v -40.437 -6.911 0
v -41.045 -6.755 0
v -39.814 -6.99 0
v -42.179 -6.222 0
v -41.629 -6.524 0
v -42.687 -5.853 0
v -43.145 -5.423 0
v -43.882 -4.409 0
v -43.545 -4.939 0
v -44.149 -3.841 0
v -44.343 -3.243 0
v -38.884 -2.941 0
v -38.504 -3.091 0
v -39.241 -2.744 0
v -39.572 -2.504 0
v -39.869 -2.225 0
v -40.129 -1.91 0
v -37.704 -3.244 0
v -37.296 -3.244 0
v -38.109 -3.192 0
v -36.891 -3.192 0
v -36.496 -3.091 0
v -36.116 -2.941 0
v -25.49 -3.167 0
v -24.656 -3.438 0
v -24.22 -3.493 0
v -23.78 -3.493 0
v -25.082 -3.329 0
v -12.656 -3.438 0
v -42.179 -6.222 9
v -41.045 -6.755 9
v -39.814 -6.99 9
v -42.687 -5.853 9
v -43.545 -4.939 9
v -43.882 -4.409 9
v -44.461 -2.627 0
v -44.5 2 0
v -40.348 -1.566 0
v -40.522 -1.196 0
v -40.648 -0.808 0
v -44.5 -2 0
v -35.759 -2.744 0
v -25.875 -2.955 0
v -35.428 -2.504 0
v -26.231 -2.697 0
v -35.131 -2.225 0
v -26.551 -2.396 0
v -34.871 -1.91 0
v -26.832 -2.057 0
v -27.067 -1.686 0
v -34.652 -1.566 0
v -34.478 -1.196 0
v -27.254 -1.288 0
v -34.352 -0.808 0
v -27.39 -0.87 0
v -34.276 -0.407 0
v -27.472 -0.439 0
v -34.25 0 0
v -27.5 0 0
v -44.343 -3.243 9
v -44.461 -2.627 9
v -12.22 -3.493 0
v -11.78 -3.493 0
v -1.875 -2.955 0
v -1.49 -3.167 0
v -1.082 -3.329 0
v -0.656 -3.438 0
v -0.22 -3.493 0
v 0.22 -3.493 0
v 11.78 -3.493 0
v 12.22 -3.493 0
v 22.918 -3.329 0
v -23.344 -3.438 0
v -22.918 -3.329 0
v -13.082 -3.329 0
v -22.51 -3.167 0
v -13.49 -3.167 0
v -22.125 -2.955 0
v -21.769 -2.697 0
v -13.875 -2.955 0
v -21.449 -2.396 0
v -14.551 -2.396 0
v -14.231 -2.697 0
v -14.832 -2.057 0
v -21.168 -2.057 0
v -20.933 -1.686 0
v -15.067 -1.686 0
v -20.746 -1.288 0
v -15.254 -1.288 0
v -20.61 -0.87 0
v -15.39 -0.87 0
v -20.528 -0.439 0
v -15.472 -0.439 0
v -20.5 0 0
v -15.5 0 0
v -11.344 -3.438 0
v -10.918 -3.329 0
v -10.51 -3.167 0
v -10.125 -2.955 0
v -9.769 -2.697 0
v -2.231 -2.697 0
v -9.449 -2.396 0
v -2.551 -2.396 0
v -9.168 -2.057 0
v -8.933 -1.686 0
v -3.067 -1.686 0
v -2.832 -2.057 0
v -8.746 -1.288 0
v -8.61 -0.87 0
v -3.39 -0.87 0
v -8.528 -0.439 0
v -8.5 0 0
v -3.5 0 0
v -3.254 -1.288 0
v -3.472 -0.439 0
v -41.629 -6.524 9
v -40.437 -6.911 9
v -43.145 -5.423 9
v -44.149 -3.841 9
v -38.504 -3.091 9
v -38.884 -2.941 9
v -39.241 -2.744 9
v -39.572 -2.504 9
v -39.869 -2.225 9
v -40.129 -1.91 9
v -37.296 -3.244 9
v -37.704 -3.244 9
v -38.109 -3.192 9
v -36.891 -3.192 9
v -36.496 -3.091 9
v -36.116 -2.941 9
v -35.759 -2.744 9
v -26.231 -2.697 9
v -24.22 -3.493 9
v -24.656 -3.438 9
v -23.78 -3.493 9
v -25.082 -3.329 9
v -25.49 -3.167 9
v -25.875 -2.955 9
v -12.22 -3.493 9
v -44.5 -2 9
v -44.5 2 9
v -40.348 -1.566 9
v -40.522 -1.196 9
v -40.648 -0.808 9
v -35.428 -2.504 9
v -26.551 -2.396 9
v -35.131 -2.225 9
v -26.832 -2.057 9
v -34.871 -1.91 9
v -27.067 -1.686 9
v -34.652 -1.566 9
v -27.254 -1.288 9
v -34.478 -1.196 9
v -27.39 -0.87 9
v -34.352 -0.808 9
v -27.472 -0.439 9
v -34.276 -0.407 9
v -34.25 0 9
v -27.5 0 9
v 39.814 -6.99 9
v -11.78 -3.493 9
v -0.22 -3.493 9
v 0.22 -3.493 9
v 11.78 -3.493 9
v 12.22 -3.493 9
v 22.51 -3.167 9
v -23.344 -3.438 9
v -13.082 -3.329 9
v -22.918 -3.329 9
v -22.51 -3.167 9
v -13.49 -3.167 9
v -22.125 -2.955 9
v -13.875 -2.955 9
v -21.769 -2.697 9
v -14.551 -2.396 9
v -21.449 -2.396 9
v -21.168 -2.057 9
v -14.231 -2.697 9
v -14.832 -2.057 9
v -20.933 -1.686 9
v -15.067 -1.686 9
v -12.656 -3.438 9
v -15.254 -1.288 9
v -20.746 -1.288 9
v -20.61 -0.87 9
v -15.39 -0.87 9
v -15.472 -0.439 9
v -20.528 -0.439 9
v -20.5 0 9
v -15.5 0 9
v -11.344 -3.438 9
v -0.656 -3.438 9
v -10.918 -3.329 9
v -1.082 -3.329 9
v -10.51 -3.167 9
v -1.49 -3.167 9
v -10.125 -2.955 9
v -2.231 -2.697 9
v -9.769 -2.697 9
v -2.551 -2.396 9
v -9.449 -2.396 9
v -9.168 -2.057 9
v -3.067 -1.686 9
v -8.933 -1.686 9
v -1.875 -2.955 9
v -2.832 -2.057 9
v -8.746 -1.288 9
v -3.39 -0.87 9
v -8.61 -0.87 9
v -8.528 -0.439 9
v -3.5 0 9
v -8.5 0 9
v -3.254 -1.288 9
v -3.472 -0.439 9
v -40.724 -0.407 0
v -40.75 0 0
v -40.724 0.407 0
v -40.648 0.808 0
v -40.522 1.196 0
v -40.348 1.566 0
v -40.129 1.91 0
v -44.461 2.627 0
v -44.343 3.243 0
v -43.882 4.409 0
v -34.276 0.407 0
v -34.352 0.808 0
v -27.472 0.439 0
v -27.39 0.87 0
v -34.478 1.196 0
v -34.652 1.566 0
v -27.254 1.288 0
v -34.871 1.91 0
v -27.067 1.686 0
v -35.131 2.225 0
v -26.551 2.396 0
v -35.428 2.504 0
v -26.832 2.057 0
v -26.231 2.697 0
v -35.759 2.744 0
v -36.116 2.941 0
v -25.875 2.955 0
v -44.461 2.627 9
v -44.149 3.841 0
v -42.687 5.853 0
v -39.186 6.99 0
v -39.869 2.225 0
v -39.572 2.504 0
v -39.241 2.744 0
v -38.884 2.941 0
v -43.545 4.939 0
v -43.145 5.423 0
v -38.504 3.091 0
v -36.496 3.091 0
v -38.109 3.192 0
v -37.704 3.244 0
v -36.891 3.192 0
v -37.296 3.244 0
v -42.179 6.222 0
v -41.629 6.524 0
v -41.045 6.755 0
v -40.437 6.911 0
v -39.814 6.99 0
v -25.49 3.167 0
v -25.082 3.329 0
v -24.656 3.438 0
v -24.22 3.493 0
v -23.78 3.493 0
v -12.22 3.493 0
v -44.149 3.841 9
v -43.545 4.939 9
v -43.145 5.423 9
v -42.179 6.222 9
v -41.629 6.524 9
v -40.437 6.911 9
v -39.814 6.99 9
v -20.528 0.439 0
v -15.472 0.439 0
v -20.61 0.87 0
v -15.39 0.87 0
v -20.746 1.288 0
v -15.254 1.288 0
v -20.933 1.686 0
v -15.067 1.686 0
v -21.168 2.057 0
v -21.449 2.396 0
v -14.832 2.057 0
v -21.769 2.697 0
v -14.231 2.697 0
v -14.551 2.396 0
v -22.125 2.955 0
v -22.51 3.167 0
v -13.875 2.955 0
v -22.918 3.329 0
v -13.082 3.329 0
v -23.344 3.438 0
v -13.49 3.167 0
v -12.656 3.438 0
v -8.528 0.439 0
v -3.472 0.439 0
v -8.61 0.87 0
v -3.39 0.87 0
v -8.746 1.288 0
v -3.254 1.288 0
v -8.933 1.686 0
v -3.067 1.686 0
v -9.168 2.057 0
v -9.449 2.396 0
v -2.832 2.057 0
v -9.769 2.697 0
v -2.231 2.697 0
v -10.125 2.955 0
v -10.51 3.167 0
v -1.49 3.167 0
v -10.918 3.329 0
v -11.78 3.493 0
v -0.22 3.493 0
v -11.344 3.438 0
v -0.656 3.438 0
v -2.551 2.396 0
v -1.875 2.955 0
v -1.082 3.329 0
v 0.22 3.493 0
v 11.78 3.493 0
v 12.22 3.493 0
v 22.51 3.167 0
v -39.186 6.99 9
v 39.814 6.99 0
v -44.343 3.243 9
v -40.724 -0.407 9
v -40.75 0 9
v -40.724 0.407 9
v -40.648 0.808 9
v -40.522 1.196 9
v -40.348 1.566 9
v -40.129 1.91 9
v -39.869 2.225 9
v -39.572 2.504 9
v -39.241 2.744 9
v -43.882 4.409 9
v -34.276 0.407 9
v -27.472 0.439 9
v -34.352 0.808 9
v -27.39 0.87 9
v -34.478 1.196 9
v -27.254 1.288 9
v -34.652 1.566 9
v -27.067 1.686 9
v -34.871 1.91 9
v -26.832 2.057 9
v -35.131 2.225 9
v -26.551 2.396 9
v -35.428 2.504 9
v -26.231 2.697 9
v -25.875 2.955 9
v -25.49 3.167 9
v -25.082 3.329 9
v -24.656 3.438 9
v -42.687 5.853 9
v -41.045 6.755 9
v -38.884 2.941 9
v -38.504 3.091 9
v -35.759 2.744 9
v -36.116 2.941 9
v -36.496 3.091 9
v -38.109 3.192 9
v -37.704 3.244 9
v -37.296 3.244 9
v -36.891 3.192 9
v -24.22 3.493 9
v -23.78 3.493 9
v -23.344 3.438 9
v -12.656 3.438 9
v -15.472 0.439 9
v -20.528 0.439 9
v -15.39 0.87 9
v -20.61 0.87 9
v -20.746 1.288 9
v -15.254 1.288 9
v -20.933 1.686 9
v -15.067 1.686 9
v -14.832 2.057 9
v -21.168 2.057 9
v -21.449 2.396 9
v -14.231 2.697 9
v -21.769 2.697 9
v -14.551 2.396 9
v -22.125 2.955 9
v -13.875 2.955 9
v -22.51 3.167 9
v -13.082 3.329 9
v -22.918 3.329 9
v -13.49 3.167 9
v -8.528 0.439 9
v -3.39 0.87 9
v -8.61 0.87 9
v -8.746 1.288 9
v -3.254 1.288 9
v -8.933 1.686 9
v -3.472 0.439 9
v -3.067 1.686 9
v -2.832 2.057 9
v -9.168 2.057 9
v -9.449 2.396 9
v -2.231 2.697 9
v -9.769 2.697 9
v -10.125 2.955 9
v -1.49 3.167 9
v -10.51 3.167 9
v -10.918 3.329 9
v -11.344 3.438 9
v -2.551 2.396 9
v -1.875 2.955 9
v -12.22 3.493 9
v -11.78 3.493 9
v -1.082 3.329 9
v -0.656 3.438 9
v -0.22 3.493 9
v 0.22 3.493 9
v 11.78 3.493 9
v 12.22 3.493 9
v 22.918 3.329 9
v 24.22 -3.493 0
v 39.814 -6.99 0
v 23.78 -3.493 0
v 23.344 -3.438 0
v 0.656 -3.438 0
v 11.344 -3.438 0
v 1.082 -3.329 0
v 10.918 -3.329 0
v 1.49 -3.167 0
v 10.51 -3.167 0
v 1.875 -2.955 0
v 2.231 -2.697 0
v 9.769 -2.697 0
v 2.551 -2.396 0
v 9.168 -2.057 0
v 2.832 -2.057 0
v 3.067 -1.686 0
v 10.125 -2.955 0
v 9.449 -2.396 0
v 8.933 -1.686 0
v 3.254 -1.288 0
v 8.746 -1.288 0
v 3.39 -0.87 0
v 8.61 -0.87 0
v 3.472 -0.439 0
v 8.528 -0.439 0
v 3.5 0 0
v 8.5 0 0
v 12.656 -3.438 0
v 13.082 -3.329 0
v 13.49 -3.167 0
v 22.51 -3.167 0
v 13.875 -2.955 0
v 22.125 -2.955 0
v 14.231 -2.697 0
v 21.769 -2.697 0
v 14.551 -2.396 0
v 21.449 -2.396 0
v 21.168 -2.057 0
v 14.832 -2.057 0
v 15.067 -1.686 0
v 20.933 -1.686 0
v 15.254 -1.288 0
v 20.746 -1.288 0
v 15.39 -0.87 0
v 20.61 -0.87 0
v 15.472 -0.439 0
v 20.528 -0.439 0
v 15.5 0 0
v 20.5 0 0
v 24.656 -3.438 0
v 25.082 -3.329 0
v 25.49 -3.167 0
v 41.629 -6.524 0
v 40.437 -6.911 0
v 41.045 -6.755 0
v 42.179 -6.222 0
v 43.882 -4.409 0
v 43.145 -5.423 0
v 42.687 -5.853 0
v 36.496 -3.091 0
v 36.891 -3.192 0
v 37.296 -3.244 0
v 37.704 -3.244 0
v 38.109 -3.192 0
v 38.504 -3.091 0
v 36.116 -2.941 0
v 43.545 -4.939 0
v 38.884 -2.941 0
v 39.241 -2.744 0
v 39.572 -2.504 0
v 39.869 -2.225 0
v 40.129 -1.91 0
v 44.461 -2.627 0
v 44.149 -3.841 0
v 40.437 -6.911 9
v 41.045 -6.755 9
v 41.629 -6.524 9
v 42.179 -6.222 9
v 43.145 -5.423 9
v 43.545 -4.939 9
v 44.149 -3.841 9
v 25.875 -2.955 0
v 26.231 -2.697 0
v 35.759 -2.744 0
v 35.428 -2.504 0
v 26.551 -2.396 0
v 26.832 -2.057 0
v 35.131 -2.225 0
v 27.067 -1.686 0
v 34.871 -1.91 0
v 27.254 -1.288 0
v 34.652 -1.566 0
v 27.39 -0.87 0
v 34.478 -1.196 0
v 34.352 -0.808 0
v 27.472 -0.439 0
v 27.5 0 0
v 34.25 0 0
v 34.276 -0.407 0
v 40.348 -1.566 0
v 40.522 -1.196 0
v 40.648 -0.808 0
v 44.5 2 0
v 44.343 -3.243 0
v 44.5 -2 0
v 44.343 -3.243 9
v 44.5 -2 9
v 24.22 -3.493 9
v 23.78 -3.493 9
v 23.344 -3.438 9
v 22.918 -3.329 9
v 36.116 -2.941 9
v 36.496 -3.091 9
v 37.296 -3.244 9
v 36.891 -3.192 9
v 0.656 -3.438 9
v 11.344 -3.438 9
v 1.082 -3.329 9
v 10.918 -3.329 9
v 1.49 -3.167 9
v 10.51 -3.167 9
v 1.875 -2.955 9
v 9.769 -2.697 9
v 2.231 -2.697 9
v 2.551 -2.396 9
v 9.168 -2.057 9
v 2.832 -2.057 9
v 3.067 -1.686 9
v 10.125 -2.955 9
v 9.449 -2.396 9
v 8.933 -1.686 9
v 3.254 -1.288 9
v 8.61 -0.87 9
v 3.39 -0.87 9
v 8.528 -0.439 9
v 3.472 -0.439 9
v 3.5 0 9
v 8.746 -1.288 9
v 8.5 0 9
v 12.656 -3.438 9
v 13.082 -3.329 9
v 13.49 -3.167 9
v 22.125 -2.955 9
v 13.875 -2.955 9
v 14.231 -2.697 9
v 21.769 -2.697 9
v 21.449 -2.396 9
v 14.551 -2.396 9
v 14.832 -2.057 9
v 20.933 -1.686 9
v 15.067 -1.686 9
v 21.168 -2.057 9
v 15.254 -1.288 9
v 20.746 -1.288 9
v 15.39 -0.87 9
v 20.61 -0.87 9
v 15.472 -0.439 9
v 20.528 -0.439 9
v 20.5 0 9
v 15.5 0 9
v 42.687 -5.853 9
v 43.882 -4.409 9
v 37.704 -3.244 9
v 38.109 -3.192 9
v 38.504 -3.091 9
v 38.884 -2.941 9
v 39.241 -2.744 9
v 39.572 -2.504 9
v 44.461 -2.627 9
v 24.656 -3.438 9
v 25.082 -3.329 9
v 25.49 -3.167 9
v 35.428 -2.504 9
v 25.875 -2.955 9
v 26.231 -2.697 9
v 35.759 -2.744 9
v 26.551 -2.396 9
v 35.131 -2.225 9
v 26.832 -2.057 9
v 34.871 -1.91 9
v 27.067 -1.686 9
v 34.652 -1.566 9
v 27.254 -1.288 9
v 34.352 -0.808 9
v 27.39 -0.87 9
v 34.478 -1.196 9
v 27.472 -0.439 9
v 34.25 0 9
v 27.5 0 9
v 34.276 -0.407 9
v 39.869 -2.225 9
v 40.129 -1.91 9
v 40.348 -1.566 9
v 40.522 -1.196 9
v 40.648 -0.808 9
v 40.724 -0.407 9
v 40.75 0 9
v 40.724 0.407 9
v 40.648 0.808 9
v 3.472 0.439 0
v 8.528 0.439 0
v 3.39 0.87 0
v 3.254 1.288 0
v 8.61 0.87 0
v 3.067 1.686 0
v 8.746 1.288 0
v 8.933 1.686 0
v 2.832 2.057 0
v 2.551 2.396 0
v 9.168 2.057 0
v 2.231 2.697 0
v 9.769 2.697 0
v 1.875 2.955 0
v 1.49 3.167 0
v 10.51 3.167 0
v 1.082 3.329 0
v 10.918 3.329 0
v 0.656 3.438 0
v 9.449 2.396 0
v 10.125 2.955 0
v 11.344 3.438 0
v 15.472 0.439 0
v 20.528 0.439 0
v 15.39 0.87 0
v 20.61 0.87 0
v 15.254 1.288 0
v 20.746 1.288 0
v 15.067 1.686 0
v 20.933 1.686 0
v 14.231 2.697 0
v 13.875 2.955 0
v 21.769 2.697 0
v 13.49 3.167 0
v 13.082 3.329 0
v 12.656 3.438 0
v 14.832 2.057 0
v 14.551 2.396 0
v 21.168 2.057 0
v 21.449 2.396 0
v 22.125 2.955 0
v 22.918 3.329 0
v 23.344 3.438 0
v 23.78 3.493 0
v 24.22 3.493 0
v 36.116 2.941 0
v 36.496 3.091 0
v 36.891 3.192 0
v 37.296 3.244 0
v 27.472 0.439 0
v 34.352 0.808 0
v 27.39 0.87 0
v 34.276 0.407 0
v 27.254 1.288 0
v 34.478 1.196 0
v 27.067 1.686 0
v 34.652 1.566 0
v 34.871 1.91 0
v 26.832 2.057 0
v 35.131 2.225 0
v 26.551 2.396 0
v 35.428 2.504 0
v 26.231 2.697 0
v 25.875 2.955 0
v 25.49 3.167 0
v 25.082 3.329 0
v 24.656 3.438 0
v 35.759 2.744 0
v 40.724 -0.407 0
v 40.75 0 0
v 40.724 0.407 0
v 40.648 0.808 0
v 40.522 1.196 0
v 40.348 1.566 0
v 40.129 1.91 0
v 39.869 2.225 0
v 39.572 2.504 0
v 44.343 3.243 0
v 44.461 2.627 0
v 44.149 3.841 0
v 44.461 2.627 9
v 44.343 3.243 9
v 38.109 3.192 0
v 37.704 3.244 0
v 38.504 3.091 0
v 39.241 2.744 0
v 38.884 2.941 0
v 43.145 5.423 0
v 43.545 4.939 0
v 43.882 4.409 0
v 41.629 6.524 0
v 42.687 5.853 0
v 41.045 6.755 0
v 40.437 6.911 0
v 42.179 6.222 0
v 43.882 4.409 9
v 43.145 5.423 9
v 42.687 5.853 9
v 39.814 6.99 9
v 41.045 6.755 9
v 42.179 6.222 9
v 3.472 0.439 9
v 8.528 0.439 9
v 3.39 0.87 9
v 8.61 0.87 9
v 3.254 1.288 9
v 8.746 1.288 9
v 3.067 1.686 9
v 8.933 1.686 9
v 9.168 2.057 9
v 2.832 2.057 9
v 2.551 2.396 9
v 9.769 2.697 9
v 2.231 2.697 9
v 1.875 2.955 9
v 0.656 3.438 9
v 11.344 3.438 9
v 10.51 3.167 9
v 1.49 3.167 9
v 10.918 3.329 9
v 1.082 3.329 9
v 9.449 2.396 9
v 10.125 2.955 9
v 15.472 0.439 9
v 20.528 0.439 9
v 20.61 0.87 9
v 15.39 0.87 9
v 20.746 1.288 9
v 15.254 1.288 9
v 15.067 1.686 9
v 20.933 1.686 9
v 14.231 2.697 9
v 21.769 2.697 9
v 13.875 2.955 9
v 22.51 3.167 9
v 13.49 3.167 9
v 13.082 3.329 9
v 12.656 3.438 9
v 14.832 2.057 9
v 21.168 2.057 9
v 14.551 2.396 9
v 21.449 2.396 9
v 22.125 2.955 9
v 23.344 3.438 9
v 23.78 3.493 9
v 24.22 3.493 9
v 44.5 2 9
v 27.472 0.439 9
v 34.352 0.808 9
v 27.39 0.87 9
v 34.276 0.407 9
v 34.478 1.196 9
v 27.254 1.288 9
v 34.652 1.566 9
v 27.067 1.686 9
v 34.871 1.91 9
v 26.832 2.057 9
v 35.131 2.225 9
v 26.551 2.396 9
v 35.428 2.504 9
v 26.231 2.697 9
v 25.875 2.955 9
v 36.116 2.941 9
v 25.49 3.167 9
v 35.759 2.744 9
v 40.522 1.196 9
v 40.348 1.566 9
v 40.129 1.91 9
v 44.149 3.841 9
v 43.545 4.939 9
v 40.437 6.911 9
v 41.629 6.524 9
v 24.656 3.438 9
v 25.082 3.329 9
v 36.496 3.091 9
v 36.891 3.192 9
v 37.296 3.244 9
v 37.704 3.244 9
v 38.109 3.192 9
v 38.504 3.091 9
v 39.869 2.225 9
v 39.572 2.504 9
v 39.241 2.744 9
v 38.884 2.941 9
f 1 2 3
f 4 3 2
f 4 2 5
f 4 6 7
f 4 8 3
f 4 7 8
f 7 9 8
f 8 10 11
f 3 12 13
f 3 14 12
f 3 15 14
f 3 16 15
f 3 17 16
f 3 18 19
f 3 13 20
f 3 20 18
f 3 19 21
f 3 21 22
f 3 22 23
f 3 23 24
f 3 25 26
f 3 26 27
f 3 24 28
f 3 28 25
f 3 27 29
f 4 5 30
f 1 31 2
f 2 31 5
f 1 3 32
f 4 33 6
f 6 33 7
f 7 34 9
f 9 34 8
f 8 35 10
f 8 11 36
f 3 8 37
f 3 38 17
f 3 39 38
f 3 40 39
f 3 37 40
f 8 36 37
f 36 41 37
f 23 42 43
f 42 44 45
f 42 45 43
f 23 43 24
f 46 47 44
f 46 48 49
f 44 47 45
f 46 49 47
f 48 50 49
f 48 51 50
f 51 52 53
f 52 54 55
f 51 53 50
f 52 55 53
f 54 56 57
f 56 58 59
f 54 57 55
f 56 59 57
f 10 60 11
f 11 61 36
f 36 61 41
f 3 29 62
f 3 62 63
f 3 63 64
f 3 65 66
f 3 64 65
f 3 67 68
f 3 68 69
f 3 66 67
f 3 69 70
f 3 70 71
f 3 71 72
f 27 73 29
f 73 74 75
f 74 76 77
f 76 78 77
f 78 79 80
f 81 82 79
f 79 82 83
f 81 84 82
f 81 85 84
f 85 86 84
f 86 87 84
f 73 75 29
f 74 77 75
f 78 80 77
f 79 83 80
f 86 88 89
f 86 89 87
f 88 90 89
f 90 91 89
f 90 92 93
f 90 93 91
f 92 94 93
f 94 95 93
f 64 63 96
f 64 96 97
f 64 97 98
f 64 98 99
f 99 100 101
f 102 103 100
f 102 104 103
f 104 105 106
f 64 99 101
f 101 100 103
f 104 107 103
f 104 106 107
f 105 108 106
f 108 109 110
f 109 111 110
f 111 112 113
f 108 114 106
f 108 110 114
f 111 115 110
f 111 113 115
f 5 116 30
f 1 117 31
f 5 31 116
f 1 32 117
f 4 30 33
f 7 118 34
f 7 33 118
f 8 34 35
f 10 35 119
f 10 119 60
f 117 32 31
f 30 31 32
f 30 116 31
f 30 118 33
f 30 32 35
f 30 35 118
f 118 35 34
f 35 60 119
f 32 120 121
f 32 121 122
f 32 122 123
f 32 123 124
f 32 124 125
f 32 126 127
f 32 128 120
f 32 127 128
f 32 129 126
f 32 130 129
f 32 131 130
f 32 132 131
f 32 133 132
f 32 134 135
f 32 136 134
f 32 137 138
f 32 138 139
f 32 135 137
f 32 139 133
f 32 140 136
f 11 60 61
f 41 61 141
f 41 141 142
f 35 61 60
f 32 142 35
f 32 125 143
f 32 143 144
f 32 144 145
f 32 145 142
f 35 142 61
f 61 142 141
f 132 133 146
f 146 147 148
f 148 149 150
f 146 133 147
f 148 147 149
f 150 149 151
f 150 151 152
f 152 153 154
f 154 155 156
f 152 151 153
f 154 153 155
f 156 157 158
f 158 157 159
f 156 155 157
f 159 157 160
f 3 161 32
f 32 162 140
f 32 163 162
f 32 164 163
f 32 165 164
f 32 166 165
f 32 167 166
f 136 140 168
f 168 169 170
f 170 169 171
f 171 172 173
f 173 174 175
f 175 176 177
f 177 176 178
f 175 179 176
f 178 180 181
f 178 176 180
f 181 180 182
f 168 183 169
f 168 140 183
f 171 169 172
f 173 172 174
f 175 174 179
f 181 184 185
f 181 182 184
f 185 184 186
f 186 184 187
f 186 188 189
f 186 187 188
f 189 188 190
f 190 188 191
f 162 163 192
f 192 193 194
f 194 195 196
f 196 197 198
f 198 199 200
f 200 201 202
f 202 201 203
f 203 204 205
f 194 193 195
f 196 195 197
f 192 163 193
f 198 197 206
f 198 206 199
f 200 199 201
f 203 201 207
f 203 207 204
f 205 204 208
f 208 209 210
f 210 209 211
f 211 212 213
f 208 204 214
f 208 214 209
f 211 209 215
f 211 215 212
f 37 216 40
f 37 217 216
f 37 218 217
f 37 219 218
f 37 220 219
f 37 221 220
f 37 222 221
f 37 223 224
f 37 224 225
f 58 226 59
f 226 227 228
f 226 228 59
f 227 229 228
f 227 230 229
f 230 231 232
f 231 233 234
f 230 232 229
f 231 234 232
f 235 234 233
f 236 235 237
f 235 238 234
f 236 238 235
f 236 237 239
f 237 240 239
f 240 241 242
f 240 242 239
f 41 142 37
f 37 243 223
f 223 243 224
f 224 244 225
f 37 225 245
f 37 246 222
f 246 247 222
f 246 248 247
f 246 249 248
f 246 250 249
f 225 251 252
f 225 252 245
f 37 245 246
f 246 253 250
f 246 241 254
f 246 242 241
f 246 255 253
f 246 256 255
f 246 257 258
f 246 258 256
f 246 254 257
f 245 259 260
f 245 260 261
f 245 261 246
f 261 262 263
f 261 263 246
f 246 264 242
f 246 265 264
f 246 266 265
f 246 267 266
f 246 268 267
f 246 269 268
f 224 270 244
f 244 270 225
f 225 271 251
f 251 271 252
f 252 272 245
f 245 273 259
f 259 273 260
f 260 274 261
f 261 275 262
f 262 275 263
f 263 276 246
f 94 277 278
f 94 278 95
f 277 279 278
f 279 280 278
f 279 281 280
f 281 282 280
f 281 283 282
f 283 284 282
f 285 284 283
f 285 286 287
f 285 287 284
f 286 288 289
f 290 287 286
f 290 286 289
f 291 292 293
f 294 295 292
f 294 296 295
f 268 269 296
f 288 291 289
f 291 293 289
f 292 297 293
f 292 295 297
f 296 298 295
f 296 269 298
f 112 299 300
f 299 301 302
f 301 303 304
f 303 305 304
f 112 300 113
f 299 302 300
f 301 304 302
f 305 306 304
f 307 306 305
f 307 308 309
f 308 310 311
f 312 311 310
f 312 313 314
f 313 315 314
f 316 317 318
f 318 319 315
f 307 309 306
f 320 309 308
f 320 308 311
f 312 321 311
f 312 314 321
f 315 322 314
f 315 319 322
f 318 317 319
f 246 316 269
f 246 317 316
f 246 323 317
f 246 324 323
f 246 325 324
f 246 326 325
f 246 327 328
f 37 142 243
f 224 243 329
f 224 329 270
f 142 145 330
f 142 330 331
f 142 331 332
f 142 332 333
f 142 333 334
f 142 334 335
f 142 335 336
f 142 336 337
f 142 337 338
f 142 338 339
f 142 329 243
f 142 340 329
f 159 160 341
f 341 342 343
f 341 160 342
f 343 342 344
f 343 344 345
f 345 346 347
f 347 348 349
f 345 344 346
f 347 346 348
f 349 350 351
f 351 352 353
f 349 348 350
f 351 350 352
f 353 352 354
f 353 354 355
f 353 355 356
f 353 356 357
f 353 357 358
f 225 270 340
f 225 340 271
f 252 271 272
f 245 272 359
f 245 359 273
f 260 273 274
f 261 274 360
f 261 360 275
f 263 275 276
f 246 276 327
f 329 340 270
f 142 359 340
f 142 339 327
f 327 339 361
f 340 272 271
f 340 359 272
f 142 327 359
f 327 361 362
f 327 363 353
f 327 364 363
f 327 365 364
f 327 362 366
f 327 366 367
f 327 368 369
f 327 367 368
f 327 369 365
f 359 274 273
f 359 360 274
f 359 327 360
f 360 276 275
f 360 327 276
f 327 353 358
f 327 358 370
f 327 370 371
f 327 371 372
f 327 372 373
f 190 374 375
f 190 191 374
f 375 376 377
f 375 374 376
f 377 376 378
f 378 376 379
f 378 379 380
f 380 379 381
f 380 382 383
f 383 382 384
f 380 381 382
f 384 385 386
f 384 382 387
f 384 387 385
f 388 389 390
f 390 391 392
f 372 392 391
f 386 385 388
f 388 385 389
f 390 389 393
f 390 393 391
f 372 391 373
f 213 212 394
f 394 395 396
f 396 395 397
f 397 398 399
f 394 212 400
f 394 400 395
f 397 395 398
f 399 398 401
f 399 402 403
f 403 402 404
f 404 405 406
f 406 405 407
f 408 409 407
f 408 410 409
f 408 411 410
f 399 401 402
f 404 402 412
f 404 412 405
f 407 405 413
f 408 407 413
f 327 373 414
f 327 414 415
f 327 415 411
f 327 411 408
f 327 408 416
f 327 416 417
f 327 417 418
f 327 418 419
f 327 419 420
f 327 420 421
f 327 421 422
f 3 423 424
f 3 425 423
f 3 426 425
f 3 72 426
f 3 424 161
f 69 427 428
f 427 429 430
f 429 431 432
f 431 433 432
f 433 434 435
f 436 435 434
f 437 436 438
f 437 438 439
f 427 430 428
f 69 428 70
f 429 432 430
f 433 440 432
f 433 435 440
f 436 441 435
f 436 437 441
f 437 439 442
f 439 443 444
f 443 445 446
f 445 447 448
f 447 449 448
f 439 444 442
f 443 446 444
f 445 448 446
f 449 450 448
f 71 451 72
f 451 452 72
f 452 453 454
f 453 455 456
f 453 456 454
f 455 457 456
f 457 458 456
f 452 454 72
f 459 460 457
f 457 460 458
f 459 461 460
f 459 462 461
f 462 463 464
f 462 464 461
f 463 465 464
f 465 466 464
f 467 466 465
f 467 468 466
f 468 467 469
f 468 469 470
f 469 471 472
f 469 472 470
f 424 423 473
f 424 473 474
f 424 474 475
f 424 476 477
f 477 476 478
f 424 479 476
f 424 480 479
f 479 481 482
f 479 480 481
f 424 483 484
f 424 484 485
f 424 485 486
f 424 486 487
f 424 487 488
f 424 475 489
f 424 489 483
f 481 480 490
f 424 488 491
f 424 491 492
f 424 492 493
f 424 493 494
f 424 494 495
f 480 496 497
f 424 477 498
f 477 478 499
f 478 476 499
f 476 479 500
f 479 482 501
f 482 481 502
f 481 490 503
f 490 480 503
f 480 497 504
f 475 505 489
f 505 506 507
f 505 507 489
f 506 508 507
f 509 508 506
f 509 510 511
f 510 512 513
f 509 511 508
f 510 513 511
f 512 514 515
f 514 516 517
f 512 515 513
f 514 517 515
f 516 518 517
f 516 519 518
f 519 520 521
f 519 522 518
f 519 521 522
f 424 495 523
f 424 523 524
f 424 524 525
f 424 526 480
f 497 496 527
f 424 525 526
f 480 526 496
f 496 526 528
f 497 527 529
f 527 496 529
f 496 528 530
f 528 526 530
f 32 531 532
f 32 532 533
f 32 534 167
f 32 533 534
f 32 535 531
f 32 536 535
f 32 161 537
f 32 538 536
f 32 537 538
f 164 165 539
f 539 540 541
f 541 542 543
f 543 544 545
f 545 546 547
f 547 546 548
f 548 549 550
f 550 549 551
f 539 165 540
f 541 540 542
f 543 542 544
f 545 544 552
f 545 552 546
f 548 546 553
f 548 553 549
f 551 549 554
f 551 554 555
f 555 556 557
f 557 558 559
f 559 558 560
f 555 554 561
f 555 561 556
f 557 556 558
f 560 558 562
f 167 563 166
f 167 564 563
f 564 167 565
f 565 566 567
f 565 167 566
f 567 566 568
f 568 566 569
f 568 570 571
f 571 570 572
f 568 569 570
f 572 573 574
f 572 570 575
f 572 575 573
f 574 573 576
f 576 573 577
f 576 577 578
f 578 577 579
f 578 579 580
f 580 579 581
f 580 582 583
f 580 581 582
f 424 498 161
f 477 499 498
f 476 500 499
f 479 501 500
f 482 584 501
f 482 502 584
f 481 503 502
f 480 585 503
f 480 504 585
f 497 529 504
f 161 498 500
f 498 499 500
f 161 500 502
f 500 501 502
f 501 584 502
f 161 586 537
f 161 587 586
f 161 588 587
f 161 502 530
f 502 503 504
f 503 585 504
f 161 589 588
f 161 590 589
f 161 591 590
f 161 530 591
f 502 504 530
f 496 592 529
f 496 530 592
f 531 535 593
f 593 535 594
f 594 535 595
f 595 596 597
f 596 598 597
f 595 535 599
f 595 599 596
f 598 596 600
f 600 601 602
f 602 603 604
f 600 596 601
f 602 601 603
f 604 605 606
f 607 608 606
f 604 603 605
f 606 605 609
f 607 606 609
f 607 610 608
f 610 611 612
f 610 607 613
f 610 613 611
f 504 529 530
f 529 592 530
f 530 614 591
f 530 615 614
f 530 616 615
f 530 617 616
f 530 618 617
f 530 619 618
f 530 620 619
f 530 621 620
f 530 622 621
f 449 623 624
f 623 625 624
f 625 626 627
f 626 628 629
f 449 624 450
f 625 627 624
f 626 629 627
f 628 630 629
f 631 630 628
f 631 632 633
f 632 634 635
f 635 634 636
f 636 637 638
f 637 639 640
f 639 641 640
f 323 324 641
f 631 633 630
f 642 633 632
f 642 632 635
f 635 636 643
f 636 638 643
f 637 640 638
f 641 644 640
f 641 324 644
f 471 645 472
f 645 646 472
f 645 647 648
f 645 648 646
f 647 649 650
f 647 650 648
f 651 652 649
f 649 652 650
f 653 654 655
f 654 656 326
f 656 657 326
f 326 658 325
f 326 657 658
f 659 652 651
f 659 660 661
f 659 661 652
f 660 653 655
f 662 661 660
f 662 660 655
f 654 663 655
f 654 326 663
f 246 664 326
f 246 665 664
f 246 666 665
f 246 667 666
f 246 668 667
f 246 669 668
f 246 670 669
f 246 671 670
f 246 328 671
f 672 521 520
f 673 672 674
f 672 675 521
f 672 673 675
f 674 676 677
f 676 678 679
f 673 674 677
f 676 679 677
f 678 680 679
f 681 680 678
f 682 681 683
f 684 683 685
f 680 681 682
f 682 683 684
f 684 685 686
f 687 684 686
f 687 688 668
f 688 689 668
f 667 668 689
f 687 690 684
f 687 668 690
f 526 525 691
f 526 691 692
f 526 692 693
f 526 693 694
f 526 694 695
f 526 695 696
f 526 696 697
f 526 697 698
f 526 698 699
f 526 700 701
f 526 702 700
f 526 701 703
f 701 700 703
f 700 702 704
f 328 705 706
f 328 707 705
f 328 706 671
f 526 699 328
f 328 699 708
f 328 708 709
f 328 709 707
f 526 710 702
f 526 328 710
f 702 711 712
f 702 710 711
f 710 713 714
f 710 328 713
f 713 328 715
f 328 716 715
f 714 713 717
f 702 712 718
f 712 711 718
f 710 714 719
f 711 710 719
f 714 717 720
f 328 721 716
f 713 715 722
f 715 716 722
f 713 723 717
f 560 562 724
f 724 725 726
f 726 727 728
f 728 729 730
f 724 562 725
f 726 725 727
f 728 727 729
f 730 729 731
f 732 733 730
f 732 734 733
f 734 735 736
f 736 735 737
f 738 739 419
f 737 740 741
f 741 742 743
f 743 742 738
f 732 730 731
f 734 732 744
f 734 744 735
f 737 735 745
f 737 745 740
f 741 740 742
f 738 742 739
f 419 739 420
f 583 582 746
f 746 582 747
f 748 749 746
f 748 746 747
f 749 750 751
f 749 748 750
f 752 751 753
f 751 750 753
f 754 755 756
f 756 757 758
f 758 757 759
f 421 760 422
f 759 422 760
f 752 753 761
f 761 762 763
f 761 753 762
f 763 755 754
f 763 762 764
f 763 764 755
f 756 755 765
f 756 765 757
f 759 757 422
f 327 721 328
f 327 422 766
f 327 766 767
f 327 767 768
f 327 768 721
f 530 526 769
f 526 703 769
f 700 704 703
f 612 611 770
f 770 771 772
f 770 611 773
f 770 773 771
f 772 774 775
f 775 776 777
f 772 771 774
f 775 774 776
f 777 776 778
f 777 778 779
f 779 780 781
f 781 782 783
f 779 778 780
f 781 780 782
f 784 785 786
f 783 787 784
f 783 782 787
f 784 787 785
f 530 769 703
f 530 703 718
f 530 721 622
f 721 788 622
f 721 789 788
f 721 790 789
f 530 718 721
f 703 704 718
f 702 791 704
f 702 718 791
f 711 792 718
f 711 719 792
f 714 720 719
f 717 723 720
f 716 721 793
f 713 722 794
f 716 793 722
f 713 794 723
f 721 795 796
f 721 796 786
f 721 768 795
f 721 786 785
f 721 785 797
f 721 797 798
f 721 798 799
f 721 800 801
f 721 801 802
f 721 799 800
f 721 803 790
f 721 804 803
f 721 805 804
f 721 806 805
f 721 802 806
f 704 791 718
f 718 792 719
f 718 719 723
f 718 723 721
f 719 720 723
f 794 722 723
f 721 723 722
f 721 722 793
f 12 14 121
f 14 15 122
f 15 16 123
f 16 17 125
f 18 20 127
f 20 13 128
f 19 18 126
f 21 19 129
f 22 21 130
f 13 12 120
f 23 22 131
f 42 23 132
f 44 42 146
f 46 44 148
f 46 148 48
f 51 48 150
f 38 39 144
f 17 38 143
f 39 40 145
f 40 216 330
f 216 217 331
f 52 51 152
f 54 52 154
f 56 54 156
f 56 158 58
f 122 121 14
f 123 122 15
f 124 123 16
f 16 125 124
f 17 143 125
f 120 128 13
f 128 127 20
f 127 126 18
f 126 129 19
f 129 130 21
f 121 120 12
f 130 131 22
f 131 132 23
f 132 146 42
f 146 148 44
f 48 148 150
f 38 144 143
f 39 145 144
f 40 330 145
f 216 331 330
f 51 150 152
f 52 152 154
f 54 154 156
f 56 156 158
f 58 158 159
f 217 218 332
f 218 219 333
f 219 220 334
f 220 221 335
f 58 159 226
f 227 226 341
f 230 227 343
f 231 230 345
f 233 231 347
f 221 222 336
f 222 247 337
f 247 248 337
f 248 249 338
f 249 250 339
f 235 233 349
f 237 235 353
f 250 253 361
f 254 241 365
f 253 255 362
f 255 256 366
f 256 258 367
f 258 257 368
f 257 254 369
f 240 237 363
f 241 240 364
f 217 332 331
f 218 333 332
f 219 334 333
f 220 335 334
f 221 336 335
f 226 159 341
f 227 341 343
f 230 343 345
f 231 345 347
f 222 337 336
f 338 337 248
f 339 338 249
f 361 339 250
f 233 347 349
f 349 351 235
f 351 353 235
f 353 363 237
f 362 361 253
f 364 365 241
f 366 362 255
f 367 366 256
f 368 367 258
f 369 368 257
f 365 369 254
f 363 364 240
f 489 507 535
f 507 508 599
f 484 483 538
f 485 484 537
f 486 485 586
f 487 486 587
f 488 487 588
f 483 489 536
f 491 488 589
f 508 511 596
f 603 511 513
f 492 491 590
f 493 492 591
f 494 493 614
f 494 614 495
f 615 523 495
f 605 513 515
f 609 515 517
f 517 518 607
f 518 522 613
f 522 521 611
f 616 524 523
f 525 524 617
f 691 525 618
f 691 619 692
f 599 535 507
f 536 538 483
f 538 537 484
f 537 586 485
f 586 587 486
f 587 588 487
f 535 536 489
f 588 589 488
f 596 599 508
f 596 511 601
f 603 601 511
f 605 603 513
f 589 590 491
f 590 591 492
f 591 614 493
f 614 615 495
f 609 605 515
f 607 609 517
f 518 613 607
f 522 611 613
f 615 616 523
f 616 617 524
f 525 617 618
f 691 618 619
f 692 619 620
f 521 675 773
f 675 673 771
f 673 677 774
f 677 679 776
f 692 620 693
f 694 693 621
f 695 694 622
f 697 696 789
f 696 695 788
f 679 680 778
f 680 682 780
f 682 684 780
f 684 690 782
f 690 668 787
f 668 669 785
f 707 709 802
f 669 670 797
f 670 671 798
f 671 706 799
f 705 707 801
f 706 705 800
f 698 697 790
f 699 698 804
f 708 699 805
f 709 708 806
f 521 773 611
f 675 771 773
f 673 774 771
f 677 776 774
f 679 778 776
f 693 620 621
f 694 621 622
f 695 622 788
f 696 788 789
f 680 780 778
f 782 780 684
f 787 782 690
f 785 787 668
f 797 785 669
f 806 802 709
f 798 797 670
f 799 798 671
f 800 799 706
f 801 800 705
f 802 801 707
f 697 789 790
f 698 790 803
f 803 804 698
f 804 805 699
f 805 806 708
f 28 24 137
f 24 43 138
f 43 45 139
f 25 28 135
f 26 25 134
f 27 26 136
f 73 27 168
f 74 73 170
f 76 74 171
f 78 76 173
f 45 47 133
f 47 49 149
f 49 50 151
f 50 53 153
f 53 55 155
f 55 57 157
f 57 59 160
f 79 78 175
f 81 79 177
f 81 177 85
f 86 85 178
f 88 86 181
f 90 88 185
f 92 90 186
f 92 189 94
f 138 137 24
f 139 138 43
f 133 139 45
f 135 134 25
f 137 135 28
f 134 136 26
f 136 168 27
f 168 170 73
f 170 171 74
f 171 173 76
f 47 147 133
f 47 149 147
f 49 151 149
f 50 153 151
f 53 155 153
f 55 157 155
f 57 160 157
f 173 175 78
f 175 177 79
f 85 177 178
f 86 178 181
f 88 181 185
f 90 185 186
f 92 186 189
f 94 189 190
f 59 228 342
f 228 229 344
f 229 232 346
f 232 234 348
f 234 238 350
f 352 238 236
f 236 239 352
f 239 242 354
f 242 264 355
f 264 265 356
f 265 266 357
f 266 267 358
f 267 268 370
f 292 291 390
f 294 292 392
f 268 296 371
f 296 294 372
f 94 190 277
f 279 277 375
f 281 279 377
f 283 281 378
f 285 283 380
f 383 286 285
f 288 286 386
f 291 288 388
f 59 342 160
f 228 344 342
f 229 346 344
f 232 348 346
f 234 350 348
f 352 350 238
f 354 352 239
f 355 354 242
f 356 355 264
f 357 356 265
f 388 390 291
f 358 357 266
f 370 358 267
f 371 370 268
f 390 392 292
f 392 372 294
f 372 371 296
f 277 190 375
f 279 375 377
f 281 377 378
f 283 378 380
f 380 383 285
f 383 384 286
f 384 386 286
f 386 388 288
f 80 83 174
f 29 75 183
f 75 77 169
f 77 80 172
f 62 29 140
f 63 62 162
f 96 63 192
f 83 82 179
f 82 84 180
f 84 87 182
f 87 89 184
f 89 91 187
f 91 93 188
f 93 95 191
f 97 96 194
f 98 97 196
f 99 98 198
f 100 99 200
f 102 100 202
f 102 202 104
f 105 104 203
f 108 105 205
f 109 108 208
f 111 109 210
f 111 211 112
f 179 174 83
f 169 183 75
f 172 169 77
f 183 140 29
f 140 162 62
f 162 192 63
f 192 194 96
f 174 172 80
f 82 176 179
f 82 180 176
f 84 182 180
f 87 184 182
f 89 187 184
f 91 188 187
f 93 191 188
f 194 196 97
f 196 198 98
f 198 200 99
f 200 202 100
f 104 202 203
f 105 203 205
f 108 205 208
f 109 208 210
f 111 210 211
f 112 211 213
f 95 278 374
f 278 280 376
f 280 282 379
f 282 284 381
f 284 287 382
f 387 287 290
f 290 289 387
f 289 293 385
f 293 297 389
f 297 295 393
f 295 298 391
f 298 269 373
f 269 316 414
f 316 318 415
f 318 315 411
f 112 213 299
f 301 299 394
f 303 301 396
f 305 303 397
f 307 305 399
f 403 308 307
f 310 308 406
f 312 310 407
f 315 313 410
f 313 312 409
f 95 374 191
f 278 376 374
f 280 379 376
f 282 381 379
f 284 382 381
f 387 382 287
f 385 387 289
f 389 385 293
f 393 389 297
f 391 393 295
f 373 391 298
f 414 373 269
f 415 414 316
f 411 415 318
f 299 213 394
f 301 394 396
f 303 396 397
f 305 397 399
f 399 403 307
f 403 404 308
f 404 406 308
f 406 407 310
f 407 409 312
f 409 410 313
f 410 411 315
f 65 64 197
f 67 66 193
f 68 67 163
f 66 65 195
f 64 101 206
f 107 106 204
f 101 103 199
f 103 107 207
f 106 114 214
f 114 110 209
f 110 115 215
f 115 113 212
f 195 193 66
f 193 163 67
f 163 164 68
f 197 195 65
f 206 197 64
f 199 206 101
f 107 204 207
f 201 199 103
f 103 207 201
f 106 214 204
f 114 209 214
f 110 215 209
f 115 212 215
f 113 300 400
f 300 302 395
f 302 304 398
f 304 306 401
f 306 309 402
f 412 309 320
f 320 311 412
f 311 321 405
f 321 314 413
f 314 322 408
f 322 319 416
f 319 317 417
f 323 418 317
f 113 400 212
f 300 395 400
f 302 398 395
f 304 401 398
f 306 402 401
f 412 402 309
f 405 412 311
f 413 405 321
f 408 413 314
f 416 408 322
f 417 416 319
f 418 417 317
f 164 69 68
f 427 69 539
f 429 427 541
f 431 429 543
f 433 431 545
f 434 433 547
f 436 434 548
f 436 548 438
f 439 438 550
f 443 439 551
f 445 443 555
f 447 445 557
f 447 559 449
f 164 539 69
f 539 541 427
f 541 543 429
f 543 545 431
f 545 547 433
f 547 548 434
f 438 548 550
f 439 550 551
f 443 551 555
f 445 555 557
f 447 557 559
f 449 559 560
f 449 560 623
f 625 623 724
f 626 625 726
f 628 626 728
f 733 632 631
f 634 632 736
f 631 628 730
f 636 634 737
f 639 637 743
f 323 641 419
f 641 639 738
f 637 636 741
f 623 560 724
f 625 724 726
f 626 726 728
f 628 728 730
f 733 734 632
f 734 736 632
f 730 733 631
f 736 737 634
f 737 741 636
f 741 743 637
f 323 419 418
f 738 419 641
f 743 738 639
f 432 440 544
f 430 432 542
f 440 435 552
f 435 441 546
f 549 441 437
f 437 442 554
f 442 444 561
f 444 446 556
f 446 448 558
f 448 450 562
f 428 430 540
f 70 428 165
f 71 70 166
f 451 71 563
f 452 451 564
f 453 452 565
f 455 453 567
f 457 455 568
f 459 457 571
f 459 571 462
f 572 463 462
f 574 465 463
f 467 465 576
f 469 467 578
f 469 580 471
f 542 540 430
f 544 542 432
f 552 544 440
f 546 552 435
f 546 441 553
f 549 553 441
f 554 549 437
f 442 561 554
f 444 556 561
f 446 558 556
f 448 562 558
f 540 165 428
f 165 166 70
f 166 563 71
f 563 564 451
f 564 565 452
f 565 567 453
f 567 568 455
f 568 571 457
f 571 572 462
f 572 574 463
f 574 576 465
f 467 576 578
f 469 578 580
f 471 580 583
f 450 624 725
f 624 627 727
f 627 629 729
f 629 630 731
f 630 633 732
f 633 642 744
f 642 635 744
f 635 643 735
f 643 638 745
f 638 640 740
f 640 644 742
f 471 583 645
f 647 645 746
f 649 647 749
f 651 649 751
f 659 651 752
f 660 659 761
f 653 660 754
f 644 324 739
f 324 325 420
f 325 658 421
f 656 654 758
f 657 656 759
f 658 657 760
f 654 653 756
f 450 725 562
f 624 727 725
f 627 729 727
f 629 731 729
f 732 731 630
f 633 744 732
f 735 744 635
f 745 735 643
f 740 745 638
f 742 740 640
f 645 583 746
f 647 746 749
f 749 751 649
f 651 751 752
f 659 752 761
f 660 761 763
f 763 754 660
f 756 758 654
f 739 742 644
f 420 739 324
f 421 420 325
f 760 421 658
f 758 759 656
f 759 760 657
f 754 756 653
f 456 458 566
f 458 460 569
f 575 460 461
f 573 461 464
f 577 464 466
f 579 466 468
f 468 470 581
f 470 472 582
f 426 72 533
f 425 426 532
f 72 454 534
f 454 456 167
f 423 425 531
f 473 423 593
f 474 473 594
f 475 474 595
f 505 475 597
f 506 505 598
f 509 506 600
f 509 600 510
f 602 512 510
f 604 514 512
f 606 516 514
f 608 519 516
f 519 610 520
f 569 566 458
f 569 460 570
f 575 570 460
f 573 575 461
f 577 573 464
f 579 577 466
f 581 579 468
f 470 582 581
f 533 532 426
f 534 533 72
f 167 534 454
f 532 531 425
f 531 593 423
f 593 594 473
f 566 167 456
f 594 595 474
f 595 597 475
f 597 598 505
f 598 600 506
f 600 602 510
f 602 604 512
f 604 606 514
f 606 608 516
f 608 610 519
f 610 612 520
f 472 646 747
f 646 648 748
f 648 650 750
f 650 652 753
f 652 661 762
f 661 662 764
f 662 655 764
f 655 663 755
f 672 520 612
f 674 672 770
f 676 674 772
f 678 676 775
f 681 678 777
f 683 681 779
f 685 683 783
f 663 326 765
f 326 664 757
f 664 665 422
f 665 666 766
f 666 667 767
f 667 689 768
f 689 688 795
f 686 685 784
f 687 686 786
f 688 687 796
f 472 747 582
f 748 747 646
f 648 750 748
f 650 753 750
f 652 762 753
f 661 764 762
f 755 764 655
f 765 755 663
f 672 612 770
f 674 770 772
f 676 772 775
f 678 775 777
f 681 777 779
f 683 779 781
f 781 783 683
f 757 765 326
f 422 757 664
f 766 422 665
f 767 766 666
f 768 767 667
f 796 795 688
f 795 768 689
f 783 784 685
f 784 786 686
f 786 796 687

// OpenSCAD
$fn = 50;

difference() {
	union() {
		hull() {
			translate(v = [-39.5, 2.0, 0]) {
				cylinder(h = 9, r = 5);
			}
			translate(v = [39.5, 2.0, 0]) {
				cylinder(h = 9, r = 5);
			}
			translate(v = [-39.5, -2.0, 0]) {
				cylinder(h = 9, r = 5);
			}
			translate(v = [39.5, -2.0, 0]) {
				cylinder(h = 9, r = 5);
			}
		}
	}
	union() {
		translate(v = [-37.5, 0.0, 0]) {
			cylinder(h = 9, r = 3.25);
		}
		translate(v = [37.5, 0.0, 0]) {
			cylinder(h = 9, r = 3.25);
		}
		translate(v = [-24.0, 0, 0.0]) {
			cylinder(h = 9, r = 3.5);
		}
		translate(v = [-12.0, 0, 0.0]) {
			cylinder(h = 9, r = 3.5);
		}
		cylinder(h = 9, r = 3.5);
		translate(v = [12.0, 0, 0.0]) {
			cylinder(h = 9, r = 3.5);
		}
		translate(v = [24.0, 0, 0.0]) {
			cylinder(h = 9, r = 3.5);
		}
	}
}
